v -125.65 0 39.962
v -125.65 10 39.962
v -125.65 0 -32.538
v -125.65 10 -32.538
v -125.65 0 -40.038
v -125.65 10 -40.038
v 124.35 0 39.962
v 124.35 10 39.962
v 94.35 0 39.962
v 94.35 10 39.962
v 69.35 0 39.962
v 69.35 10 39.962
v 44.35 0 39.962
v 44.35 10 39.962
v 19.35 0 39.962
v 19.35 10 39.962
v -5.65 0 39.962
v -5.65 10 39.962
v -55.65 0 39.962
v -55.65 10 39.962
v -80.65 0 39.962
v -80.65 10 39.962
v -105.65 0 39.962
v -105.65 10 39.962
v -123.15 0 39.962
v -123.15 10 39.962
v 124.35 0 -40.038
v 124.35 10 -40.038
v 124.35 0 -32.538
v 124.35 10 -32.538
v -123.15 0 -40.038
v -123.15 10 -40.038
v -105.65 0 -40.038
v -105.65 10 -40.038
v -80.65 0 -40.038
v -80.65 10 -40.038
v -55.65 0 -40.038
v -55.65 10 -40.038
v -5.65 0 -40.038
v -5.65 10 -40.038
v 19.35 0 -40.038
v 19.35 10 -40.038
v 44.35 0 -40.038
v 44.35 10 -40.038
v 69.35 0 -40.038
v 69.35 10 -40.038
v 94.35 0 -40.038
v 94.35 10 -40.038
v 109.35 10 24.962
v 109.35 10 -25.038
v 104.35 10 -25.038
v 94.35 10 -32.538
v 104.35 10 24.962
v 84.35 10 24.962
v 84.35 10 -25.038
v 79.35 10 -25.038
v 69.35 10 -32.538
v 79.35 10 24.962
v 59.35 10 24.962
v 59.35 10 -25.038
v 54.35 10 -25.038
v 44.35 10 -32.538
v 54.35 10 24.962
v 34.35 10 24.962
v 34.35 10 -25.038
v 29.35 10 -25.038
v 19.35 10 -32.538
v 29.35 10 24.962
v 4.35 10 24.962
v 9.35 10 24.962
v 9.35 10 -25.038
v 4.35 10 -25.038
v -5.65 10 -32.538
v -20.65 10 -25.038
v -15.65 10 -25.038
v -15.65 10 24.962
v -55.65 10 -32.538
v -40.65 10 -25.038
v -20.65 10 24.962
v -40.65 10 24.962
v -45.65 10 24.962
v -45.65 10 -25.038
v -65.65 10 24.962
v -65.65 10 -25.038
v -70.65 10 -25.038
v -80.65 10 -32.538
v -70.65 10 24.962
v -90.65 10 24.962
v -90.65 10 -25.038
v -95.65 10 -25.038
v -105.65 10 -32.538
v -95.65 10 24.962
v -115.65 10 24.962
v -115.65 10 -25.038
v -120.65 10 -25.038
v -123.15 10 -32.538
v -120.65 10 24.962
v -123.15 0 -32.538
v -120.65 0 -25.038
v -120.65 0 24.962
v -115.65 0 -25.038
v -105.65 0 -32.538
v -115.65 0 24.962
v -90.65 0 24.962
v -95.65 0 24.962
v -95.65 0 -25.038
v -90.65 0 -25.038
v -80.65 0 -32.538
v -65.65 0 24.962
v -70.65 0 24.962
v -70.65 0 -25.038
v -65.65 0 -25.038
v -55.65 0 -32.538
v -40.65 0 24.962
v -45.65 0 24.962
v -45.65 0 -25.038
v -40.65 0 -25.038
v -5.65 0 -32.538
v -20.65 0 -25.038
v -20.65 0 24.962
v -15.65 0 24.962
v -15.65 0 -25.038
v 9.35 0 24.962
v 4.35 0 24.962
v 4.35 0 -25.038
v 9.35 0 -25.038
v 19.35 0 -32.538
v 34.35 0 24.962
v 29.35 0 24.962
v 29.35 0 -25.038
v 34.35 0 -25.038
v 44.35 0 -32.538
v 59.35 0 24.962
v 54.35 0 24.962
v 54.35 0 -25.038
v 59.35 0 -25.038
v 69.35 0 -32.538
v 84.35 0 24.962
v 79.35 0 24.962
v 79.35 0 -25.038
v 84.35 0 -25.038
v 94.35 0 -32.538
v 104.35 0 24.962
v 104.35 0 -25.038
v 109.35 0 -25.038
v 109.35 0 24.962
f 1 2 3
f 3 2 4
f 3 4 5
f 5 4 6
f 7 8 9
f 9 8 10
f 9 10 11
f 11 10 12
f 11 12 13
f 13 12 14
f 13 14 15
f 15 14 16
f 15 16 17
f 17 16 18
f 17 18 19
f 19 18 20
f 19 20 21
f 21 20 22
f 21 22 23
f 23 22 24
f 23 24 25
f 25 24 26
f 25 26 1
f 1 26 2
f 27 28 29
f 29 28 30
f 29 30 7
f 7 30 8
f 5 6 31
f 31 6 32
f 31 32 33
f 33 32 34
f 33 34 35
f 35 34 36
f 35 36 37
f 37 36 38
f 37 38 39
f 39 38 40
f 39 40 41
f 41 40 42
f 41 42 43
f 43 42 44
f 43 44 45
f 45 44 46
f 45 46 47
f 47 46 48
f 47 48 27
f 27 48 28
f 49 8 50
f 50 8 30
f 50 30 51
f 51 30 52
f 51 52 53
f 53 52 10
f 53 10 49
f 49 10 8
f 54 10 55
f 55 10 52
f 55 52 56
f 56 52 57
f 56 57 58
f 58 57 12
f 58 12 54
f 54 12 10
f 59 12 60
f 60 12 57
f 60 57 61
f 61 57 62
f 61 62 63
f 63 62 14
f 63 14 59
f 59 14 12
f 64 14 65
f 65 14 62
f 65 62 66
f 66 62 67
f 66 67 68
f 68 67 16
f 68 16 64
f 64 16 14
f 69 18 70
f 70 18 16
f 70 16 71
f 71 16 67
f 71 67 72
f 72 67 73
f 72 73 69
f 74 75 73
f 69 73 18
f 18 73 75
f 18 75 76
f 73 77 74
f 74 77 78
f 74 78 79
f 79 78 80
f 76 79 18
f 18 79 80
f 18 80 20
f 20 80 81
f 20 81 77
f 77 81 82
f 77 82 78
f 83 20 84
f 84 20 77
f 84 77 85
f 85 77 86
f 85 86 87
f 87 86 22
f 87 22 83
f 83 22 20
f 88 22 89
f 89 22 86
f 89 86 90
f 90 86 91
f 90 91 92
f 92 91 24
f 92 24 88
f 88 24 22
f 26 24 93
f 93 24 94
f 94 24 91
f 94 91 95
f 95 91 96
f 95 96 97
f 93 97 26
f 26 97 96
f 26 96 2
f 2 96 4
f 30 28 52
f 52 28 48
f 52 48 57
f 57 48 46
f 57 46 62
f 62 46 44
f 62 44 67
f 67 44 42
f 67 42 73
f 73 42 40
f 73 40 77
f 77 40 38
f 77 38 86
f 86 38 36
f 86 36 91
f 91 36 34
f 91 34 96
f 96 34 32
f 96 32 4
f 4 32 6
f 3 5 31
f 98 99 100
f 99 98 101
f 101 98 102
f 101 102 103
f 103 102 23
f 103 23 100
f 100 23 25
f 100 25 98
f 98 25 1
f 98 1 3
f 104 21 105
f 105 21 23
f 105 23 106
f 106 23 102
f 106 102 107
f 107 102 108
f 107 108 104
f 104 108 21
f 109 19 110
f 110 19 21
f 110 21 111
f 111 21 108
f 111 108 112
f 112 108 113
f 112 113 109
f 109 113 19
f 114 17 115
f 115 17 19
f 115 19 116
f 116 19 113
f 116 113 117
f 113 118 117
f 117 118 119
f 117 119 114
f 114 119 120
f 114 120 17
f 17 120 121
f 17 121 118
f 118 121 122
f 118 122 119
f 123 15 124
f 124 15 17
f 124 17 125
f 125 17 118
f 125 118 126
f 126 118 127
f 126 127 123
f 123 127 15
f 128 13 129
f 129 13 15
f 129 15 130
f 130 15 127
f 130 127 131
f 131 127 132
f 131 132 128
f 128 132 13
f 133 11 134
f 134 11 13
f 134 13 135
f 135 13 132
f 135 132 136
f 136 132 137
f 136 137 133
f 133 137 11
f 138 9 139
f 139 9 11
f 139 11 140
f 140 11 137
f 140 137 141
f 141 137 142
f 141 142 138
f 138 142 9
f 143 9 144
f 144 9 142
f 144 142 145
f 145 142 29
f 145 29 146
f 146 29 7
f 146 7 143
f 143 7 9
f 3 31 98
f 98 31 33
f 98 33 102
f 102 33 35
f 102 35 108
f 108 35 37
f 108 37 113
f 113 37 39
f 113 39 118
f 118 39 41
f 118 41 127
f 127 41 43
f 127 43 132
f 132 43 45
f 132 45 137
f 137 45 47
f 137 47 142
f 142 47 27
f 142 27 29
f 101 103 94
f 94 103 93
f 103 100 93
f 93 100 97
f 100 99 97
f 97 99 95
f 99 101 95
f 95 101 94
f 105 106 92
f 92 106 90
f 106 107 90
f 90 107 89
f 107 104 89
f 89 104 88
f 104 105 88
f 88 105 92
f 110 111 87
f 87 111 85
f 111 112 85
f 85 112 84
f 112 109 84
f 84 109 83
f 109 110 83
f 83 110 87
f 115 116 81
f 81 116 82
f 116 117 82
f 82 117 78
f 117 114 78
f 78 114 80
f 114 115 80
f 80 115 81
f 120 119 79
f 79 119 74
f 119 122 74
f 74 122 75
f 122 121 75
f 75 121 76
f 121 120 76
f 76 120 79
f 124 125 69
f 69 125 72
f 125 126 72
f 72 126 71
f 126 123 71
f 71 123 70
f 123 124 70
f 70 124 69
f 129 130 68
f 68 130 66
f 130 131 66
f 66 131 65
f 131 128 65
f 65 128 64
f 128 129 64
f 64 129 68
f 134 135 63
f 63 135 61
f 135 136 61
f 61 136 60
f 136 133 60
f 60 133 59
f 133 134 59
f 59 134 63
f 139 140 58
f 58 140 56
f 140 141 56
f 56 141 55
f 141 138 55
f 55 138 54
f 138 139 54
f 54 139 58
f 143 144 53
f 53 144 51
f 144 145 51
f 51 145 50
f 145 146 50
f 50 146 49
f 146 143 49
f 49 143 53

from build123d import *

# Parameters (mm, degrees)
SKETCH1_W              = 250
SKETCH1_H              = 80
CARD_BASE_DEPTH        = 10
SKETCH3_W              = 5
SKETCH3_H              = 50
F_2BRIDGE_HOLDER_DEPTH = 10
SKETCH5_W              = 5
SKETCH5_H              = 50
F_3BRIDGE_HOLDER_DEPTH = 10
SKETCH6_W              = 5
SKETCH6_H              = 50
F_4BRIDGE_HOLDER_DEPTH = 10
SKETCH7_W              = 5
SKETCH7_H              = 50
F_5BRIDGE_HOLDER_DEPTH = 10
SKETCH8_W              = 5
SKETCH8_H              = 50
F_6BRIDGE_HOLDER_DEPTH = 10
SKETCH9_W              = 5
SKETCH9_H              = 50
F_7_BH_DEPTH           = 10
SKETCH10_W             = 5
SKETCH10_H             = 50
F_8BH_DEPTH            = 10
SKETCH11_W             = 5
SKETCH11_H             = 50
F_9BH_DEPTH            = 10
SKETCH12_W             = 5
SKETCH12_H             = 50
F_10BH_DEPTH           = 10
SKETCH13_W             = 5
SKETCH13_H             = 50
F_11BH_DEPTH           = 10


with BuildPart() as part:
    # Sketch1 → Card Base (new body)
    with BuildSketch(Plane(origin=(0, 0, 0), x_dir=(1, 0, 0), z_dir=(0, 1, 0))):
        with Locations((-0.650367763, 0.037958261)):
            Rectangle(SKETCH1_W, SKETCH1_H)
    extrude(amount=CARD_BASE_DEPTH)

    # Sketch3 → 2bridge holder (cut)
    with BuildSketch(Plane(origin=(0, 10, 0), x_dir=(1, 0, 0), z_dir=(0, 1, 0))):
        with Locations((-118.150367763, 0.037958261)):
            Rectangle(SKETCH3_W, SKETCH3_H)
    extrude(amount=-F_2BRIDGE_HOLDER_DEPTH, mode=Mode.SUBTRACT)

    # Sketch5 → 3bridge holder (cut)
    with BuildSketch(Plane(origin=(0, 10, 0), x_dir=(1, 0, 0), z_dir=(0, 1, 0))):
        with Locations((-93.150367763, 0.037958261)):
            Rectangle(SKETCH5_W, SKETCH5_H)
    extrude(amount=-F_3BRIDGE_HOLDER_DEPTH, mode=Mode.SUBTRACT)

    # Sketch6 → 4Bridge holder (cut)
    with BuildSketch(Plane(origin=(0, 10, 0), x_dir=(1, 0, 0), z_dir=(0, 1, 0))):
        with Locations((-68.150367763, 0.037958261)):
            Rectangle(SKETCH6_W, SKETCH6_H)
    extrude(amount=-F_4BRIDGE_HOLDER_DEPTH, mode=Mode.SUBTRACT)

    # Sketch7 → 5Bridge holder (cut)
    with BuildSketch(Plane(origin=(0, 10, 0), x_dir=(1, 0, 0), z_dir=(0, 1, 0))):
        with Locations((-43.150367763, 0.037958261)):
            Rectangle(SKETCH7_W, SKETCH7_H)
    extrude(amount=-F_5BRIDGE_HOLDER_DEPTH, mode=Mode.SUBTRACT)

    # Sketch8 → 6bridge holder (cut)
    with BuildSketch(Plane(origin=(0, 10, 0), x_dir=(1, 0, 0), z_dir=(0, 1, 0))):
        with Locations((-18.150367763, 0.037958261)):
            Rectangle(SKETCH8_W, SKETCH8_H)
    extrude(amount=-F_6BRIDGE_HOLDER_DEPTH, mode=Mode.SUBTRACT)

    # Sketch9 → 7 BH (cut)
    with BuildSketch(Plane(origin=(0, 10, 0), x_dir=(1, 0, 0), z_dir=(0, 1, 0))):
        with Locations((6.849632237, 0.037958261)):
            Rectangle(SKETCH9_W, SKETCH9_H)
    extrude(amount=-F_7_BH_DEPTH, mode=Mode.SUBTRACT)

    # Sketch10 → 8BH (cut)
    with BuildSketch(Plane(origin=(0, 10, 0), x_dir=(1, 0, 0), z_dir=(0, 1, 0))):
        with Locations((31.849632237, 0.037958261)):
            Rectangle(SKETCH10_W, SKETCH10_H)
    extrude(amount=-F_8BH_DEPTH, mode=Mode.SUBTRACT)

    # Sketch11 → 9BH (cut)
    with BuildSketch(Plane(origin=(0, 10, 0), x_dir=(1, 0, 0), z_dir=(0, 1, 0))):
        with Locations((56.849632237, 0.037958261)):
            Rectangle(SKETCH11_W, SKETCH11_H)
    extrude(amount=-F_9BH_DEPTH, mode=Mode.SUBTRACT)

    # Sketch12 → 10BH (cut)
    with BuildSketch(Plane(origin=(0, 10, 0), x_dir=(1, 0, 0), z_dir=(0, 1, 0))):
        with Locations((81.849632237, 0.037958261)):
            Rectangle(SKETCH12_W, SKETCH12_H)
    extrude(amount=-F_10BH_DEPTH, mode=Mode.SUBTRACT)

    # Sketch13 → 11BH (cut)
    with BuildSketch(Plane(origin=(0, 10, 0), x_dir=(1, 0, 0), z_dir=(0, 1, 0))):
        with Locations((106.849632237, 0.037958261)):
            Rectangle(SKETCH13_W, SKETCH13_H)
    extrude(amount=-F_11BH_DEPTH, mode=Mode.SUBTRACT)


solid = part.part
